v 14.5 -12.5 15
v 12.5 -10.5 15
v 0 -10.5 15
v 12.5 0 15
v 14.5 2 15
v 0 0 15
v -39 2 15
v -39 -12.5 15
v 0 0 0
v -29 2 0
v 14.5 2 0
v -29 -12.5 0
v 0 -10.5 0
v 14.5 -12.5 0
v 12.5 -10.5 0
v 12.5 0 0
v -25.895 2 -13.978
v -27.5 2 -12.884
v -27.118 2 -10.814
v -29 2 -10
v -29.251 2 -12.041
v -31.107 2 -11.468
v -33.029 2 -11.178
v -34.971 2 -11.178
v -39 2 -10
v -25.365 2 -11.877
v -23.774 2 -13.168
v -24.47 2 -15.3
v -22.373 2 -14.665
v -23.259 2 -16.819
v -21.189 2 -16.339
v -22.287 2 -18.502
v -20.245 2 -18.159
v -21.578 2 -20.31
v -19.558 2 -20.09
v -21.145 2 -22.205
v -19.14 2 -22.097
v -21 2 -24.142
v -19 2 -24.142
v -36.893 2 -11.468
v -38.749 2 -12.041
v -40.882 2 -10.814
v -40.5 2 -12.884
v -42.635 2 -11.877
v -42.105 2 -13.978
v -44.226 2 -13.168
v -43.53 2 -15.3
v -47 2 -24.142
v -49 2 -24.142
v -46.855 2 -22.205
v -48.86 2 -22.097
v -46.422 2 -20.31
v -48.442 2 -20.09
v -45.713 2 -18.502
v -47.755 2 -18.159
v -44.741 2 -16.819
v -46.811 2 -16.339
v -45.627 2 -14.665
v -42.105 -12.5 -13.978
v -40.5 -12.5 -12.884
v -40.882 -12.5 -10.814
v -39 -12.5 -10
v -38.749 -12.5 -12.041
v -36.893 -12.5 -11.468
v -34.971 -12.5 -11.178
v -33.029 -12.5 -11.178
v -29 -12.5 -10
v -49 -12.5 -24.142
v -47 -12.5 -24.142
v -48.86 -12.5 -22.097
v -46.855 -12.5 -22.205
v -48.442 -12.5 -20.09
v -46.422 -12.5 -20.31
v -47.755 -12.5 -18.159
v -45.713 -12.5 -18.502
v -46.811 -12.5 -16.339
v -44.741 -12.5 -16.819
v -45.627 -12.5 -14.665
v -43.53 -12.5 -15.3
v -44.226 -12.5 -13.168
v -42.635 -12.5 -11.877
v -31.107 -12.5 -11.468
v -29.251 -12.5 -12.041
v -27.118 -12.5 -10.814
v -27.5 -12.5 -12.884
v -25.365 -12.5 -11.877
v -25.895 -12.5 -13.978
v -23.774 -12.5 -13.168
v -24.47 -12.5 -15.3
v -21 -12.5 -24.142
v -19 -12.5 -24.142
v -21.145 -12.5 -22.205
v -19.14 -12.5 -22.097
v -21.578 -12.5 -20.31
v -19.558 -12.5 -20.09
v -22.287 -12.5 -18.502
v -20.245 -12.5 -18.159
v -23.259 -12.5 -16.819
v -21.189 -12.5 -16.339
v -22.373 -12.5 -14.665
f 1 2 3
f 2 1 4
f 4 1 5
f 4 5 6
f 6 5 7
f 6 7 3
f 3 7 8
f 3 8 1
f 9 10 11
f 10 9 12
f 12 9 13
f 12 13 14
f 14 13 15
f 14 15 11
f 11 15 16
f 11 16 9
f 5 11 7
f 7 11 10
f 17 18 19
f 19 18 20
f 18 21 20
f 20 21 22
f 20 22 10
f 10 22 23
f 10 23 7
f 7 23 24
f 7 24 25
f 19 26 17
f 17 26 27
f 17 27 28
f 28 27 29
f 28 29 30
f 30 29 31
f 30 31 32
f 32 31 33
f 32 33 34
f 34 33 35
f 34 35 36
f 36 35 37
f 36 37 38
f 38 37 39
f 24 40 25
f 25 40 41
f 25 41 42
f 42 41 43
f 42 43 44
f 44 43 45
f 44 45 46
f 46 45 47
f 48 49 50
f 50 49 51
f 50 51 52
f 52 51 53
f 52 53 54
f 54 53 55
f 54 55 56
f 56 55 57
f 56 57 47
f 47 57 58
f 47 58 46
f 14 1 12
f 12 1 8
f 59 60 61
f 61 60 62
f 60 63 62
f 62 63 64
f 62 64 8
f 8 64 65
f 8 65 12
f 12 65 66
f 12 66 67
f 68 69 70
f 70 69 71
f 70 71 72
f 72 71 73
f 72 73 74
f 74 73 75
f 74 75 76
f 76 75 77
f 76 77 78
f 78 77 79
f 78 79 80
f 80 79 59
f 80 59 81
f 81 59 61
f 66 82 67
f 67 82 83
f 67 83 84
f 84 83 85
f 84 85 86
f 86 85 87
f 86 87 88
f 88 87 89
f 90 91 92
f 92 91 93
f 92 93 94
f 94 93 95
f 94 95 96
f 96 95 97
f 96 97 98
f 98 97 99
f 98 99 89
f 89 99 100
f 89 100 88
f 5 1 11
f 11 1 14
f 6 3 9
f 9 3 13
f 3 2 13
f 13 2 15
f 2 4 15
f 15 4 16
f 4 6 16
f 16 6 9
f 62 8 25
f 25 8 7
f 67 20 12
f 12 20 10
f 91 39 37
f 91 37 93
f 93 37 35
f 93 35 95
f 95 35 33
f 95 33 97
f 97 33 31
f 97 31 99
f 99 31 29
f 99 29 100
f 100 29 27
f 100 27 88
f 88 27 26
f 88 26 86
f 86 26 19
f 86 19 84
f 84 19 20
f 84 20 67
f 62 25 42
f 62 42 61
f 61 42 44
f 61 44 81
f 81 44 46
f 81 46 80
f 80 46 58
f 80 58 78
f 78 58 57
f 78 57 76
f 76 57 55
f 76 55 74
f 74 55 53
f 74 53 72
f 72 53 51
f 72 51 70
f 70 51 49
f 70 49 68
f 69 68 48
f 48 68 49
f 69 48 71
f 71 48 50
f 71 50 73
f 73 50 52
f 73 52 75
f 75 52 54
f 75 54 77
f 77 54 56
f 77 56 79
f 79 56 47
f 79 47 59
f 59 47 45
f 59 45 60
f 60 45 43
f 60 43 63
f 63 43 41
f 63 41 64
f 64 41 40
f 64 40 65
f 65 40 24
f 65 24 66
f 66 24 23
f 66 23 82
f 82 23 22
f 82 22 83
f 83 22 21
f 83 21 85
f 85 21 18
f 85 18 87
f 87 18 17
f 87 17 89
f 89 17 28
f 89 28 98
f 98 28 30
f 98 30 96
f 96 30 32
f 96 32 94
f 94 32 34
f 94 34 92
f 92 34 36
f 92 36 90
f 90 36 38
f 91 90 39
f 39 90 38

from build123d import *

# Parameters (mm, degrees)
SKETCH1_W           = 16.5
SKETCH1_H           = 14.5
SKETCH1_W_2         = 12.5
SKETCH1_H_2         = 10.5
BOSS_EXTRUDE1_DEPTH = 15
SKETCH2_W           = 15
SKETCH2_H           = 14.5
BOSS_EXTRUDE2_DEPTH = 37
SKETCH3_W           = 10
SKETCH3_H           = 14.5
BOSS_EXTRUDE3_DEPTH = 10
BOSS_EXTRUDE4_DEPTH = 14.5


with BuildPart() as part:
    # Sketch1 → Boss-Extrude1 (new body)
    with BuildSketch(Plane.XY):
        with Locations((6.25, -5.25)):
            Rectangle(SKETCH1_W, SKETCH1_H)
        with Locations((6.25, -5.25)):
            Rectangle(SKETCH1_W_2, SKETCH1_H_2, mode=Mode.SUBTRACT)
    extrude(amount=BOSS_EXTRUDE1_DEPTH)

    # Sketch2 → Boss-Extrude2 (add)
    with BuildSketch(Plane.ZY.offset(2)):
        with Locations((7.5, -5.25)):
            Rectangle(SKETCH2_W, SKETCH2_H)
    extrude(amount=BOSS_EXTRUDE2_DEPTH)

    # Sketch3 → Boss-Extrude3 (add)
    with BuildSketch(Plane(origin=(0, 0, 0), x_dir=(-1, 0, 0), z_dir=(0, 0, -1))):
        with Locations((34, -5.25)):
            Rectangle(SKETCH3_W, SKETCH3_H)
    extrude(amount=BOSS_EXTRUDE3_DEPTH)

    # Sketch4 → Boss-Extrude4 (add)
    with BuildSketch(Plane(origin=(0, 2, 0), x_dir=(1, 0, 0), z_dir=(0, 1, 0))):
        with BuildLine():
            Line((-19, 24.142135624), (-21, 24.142135624))
            ThreePointArc((-21, 24.142135624), (-34, 11.142135624), (-47, 24.142135624))
            Line((-47, 24.142135624), (-49, 24.142135624))
            ThreePointArc((-49, 24.142135624), (-34, 9.142135624), (-19, 24.142135624))
        make_face()
    extrude(amount=-BOSS_EXTRUDE4_DEPTH)


solid = part.part
